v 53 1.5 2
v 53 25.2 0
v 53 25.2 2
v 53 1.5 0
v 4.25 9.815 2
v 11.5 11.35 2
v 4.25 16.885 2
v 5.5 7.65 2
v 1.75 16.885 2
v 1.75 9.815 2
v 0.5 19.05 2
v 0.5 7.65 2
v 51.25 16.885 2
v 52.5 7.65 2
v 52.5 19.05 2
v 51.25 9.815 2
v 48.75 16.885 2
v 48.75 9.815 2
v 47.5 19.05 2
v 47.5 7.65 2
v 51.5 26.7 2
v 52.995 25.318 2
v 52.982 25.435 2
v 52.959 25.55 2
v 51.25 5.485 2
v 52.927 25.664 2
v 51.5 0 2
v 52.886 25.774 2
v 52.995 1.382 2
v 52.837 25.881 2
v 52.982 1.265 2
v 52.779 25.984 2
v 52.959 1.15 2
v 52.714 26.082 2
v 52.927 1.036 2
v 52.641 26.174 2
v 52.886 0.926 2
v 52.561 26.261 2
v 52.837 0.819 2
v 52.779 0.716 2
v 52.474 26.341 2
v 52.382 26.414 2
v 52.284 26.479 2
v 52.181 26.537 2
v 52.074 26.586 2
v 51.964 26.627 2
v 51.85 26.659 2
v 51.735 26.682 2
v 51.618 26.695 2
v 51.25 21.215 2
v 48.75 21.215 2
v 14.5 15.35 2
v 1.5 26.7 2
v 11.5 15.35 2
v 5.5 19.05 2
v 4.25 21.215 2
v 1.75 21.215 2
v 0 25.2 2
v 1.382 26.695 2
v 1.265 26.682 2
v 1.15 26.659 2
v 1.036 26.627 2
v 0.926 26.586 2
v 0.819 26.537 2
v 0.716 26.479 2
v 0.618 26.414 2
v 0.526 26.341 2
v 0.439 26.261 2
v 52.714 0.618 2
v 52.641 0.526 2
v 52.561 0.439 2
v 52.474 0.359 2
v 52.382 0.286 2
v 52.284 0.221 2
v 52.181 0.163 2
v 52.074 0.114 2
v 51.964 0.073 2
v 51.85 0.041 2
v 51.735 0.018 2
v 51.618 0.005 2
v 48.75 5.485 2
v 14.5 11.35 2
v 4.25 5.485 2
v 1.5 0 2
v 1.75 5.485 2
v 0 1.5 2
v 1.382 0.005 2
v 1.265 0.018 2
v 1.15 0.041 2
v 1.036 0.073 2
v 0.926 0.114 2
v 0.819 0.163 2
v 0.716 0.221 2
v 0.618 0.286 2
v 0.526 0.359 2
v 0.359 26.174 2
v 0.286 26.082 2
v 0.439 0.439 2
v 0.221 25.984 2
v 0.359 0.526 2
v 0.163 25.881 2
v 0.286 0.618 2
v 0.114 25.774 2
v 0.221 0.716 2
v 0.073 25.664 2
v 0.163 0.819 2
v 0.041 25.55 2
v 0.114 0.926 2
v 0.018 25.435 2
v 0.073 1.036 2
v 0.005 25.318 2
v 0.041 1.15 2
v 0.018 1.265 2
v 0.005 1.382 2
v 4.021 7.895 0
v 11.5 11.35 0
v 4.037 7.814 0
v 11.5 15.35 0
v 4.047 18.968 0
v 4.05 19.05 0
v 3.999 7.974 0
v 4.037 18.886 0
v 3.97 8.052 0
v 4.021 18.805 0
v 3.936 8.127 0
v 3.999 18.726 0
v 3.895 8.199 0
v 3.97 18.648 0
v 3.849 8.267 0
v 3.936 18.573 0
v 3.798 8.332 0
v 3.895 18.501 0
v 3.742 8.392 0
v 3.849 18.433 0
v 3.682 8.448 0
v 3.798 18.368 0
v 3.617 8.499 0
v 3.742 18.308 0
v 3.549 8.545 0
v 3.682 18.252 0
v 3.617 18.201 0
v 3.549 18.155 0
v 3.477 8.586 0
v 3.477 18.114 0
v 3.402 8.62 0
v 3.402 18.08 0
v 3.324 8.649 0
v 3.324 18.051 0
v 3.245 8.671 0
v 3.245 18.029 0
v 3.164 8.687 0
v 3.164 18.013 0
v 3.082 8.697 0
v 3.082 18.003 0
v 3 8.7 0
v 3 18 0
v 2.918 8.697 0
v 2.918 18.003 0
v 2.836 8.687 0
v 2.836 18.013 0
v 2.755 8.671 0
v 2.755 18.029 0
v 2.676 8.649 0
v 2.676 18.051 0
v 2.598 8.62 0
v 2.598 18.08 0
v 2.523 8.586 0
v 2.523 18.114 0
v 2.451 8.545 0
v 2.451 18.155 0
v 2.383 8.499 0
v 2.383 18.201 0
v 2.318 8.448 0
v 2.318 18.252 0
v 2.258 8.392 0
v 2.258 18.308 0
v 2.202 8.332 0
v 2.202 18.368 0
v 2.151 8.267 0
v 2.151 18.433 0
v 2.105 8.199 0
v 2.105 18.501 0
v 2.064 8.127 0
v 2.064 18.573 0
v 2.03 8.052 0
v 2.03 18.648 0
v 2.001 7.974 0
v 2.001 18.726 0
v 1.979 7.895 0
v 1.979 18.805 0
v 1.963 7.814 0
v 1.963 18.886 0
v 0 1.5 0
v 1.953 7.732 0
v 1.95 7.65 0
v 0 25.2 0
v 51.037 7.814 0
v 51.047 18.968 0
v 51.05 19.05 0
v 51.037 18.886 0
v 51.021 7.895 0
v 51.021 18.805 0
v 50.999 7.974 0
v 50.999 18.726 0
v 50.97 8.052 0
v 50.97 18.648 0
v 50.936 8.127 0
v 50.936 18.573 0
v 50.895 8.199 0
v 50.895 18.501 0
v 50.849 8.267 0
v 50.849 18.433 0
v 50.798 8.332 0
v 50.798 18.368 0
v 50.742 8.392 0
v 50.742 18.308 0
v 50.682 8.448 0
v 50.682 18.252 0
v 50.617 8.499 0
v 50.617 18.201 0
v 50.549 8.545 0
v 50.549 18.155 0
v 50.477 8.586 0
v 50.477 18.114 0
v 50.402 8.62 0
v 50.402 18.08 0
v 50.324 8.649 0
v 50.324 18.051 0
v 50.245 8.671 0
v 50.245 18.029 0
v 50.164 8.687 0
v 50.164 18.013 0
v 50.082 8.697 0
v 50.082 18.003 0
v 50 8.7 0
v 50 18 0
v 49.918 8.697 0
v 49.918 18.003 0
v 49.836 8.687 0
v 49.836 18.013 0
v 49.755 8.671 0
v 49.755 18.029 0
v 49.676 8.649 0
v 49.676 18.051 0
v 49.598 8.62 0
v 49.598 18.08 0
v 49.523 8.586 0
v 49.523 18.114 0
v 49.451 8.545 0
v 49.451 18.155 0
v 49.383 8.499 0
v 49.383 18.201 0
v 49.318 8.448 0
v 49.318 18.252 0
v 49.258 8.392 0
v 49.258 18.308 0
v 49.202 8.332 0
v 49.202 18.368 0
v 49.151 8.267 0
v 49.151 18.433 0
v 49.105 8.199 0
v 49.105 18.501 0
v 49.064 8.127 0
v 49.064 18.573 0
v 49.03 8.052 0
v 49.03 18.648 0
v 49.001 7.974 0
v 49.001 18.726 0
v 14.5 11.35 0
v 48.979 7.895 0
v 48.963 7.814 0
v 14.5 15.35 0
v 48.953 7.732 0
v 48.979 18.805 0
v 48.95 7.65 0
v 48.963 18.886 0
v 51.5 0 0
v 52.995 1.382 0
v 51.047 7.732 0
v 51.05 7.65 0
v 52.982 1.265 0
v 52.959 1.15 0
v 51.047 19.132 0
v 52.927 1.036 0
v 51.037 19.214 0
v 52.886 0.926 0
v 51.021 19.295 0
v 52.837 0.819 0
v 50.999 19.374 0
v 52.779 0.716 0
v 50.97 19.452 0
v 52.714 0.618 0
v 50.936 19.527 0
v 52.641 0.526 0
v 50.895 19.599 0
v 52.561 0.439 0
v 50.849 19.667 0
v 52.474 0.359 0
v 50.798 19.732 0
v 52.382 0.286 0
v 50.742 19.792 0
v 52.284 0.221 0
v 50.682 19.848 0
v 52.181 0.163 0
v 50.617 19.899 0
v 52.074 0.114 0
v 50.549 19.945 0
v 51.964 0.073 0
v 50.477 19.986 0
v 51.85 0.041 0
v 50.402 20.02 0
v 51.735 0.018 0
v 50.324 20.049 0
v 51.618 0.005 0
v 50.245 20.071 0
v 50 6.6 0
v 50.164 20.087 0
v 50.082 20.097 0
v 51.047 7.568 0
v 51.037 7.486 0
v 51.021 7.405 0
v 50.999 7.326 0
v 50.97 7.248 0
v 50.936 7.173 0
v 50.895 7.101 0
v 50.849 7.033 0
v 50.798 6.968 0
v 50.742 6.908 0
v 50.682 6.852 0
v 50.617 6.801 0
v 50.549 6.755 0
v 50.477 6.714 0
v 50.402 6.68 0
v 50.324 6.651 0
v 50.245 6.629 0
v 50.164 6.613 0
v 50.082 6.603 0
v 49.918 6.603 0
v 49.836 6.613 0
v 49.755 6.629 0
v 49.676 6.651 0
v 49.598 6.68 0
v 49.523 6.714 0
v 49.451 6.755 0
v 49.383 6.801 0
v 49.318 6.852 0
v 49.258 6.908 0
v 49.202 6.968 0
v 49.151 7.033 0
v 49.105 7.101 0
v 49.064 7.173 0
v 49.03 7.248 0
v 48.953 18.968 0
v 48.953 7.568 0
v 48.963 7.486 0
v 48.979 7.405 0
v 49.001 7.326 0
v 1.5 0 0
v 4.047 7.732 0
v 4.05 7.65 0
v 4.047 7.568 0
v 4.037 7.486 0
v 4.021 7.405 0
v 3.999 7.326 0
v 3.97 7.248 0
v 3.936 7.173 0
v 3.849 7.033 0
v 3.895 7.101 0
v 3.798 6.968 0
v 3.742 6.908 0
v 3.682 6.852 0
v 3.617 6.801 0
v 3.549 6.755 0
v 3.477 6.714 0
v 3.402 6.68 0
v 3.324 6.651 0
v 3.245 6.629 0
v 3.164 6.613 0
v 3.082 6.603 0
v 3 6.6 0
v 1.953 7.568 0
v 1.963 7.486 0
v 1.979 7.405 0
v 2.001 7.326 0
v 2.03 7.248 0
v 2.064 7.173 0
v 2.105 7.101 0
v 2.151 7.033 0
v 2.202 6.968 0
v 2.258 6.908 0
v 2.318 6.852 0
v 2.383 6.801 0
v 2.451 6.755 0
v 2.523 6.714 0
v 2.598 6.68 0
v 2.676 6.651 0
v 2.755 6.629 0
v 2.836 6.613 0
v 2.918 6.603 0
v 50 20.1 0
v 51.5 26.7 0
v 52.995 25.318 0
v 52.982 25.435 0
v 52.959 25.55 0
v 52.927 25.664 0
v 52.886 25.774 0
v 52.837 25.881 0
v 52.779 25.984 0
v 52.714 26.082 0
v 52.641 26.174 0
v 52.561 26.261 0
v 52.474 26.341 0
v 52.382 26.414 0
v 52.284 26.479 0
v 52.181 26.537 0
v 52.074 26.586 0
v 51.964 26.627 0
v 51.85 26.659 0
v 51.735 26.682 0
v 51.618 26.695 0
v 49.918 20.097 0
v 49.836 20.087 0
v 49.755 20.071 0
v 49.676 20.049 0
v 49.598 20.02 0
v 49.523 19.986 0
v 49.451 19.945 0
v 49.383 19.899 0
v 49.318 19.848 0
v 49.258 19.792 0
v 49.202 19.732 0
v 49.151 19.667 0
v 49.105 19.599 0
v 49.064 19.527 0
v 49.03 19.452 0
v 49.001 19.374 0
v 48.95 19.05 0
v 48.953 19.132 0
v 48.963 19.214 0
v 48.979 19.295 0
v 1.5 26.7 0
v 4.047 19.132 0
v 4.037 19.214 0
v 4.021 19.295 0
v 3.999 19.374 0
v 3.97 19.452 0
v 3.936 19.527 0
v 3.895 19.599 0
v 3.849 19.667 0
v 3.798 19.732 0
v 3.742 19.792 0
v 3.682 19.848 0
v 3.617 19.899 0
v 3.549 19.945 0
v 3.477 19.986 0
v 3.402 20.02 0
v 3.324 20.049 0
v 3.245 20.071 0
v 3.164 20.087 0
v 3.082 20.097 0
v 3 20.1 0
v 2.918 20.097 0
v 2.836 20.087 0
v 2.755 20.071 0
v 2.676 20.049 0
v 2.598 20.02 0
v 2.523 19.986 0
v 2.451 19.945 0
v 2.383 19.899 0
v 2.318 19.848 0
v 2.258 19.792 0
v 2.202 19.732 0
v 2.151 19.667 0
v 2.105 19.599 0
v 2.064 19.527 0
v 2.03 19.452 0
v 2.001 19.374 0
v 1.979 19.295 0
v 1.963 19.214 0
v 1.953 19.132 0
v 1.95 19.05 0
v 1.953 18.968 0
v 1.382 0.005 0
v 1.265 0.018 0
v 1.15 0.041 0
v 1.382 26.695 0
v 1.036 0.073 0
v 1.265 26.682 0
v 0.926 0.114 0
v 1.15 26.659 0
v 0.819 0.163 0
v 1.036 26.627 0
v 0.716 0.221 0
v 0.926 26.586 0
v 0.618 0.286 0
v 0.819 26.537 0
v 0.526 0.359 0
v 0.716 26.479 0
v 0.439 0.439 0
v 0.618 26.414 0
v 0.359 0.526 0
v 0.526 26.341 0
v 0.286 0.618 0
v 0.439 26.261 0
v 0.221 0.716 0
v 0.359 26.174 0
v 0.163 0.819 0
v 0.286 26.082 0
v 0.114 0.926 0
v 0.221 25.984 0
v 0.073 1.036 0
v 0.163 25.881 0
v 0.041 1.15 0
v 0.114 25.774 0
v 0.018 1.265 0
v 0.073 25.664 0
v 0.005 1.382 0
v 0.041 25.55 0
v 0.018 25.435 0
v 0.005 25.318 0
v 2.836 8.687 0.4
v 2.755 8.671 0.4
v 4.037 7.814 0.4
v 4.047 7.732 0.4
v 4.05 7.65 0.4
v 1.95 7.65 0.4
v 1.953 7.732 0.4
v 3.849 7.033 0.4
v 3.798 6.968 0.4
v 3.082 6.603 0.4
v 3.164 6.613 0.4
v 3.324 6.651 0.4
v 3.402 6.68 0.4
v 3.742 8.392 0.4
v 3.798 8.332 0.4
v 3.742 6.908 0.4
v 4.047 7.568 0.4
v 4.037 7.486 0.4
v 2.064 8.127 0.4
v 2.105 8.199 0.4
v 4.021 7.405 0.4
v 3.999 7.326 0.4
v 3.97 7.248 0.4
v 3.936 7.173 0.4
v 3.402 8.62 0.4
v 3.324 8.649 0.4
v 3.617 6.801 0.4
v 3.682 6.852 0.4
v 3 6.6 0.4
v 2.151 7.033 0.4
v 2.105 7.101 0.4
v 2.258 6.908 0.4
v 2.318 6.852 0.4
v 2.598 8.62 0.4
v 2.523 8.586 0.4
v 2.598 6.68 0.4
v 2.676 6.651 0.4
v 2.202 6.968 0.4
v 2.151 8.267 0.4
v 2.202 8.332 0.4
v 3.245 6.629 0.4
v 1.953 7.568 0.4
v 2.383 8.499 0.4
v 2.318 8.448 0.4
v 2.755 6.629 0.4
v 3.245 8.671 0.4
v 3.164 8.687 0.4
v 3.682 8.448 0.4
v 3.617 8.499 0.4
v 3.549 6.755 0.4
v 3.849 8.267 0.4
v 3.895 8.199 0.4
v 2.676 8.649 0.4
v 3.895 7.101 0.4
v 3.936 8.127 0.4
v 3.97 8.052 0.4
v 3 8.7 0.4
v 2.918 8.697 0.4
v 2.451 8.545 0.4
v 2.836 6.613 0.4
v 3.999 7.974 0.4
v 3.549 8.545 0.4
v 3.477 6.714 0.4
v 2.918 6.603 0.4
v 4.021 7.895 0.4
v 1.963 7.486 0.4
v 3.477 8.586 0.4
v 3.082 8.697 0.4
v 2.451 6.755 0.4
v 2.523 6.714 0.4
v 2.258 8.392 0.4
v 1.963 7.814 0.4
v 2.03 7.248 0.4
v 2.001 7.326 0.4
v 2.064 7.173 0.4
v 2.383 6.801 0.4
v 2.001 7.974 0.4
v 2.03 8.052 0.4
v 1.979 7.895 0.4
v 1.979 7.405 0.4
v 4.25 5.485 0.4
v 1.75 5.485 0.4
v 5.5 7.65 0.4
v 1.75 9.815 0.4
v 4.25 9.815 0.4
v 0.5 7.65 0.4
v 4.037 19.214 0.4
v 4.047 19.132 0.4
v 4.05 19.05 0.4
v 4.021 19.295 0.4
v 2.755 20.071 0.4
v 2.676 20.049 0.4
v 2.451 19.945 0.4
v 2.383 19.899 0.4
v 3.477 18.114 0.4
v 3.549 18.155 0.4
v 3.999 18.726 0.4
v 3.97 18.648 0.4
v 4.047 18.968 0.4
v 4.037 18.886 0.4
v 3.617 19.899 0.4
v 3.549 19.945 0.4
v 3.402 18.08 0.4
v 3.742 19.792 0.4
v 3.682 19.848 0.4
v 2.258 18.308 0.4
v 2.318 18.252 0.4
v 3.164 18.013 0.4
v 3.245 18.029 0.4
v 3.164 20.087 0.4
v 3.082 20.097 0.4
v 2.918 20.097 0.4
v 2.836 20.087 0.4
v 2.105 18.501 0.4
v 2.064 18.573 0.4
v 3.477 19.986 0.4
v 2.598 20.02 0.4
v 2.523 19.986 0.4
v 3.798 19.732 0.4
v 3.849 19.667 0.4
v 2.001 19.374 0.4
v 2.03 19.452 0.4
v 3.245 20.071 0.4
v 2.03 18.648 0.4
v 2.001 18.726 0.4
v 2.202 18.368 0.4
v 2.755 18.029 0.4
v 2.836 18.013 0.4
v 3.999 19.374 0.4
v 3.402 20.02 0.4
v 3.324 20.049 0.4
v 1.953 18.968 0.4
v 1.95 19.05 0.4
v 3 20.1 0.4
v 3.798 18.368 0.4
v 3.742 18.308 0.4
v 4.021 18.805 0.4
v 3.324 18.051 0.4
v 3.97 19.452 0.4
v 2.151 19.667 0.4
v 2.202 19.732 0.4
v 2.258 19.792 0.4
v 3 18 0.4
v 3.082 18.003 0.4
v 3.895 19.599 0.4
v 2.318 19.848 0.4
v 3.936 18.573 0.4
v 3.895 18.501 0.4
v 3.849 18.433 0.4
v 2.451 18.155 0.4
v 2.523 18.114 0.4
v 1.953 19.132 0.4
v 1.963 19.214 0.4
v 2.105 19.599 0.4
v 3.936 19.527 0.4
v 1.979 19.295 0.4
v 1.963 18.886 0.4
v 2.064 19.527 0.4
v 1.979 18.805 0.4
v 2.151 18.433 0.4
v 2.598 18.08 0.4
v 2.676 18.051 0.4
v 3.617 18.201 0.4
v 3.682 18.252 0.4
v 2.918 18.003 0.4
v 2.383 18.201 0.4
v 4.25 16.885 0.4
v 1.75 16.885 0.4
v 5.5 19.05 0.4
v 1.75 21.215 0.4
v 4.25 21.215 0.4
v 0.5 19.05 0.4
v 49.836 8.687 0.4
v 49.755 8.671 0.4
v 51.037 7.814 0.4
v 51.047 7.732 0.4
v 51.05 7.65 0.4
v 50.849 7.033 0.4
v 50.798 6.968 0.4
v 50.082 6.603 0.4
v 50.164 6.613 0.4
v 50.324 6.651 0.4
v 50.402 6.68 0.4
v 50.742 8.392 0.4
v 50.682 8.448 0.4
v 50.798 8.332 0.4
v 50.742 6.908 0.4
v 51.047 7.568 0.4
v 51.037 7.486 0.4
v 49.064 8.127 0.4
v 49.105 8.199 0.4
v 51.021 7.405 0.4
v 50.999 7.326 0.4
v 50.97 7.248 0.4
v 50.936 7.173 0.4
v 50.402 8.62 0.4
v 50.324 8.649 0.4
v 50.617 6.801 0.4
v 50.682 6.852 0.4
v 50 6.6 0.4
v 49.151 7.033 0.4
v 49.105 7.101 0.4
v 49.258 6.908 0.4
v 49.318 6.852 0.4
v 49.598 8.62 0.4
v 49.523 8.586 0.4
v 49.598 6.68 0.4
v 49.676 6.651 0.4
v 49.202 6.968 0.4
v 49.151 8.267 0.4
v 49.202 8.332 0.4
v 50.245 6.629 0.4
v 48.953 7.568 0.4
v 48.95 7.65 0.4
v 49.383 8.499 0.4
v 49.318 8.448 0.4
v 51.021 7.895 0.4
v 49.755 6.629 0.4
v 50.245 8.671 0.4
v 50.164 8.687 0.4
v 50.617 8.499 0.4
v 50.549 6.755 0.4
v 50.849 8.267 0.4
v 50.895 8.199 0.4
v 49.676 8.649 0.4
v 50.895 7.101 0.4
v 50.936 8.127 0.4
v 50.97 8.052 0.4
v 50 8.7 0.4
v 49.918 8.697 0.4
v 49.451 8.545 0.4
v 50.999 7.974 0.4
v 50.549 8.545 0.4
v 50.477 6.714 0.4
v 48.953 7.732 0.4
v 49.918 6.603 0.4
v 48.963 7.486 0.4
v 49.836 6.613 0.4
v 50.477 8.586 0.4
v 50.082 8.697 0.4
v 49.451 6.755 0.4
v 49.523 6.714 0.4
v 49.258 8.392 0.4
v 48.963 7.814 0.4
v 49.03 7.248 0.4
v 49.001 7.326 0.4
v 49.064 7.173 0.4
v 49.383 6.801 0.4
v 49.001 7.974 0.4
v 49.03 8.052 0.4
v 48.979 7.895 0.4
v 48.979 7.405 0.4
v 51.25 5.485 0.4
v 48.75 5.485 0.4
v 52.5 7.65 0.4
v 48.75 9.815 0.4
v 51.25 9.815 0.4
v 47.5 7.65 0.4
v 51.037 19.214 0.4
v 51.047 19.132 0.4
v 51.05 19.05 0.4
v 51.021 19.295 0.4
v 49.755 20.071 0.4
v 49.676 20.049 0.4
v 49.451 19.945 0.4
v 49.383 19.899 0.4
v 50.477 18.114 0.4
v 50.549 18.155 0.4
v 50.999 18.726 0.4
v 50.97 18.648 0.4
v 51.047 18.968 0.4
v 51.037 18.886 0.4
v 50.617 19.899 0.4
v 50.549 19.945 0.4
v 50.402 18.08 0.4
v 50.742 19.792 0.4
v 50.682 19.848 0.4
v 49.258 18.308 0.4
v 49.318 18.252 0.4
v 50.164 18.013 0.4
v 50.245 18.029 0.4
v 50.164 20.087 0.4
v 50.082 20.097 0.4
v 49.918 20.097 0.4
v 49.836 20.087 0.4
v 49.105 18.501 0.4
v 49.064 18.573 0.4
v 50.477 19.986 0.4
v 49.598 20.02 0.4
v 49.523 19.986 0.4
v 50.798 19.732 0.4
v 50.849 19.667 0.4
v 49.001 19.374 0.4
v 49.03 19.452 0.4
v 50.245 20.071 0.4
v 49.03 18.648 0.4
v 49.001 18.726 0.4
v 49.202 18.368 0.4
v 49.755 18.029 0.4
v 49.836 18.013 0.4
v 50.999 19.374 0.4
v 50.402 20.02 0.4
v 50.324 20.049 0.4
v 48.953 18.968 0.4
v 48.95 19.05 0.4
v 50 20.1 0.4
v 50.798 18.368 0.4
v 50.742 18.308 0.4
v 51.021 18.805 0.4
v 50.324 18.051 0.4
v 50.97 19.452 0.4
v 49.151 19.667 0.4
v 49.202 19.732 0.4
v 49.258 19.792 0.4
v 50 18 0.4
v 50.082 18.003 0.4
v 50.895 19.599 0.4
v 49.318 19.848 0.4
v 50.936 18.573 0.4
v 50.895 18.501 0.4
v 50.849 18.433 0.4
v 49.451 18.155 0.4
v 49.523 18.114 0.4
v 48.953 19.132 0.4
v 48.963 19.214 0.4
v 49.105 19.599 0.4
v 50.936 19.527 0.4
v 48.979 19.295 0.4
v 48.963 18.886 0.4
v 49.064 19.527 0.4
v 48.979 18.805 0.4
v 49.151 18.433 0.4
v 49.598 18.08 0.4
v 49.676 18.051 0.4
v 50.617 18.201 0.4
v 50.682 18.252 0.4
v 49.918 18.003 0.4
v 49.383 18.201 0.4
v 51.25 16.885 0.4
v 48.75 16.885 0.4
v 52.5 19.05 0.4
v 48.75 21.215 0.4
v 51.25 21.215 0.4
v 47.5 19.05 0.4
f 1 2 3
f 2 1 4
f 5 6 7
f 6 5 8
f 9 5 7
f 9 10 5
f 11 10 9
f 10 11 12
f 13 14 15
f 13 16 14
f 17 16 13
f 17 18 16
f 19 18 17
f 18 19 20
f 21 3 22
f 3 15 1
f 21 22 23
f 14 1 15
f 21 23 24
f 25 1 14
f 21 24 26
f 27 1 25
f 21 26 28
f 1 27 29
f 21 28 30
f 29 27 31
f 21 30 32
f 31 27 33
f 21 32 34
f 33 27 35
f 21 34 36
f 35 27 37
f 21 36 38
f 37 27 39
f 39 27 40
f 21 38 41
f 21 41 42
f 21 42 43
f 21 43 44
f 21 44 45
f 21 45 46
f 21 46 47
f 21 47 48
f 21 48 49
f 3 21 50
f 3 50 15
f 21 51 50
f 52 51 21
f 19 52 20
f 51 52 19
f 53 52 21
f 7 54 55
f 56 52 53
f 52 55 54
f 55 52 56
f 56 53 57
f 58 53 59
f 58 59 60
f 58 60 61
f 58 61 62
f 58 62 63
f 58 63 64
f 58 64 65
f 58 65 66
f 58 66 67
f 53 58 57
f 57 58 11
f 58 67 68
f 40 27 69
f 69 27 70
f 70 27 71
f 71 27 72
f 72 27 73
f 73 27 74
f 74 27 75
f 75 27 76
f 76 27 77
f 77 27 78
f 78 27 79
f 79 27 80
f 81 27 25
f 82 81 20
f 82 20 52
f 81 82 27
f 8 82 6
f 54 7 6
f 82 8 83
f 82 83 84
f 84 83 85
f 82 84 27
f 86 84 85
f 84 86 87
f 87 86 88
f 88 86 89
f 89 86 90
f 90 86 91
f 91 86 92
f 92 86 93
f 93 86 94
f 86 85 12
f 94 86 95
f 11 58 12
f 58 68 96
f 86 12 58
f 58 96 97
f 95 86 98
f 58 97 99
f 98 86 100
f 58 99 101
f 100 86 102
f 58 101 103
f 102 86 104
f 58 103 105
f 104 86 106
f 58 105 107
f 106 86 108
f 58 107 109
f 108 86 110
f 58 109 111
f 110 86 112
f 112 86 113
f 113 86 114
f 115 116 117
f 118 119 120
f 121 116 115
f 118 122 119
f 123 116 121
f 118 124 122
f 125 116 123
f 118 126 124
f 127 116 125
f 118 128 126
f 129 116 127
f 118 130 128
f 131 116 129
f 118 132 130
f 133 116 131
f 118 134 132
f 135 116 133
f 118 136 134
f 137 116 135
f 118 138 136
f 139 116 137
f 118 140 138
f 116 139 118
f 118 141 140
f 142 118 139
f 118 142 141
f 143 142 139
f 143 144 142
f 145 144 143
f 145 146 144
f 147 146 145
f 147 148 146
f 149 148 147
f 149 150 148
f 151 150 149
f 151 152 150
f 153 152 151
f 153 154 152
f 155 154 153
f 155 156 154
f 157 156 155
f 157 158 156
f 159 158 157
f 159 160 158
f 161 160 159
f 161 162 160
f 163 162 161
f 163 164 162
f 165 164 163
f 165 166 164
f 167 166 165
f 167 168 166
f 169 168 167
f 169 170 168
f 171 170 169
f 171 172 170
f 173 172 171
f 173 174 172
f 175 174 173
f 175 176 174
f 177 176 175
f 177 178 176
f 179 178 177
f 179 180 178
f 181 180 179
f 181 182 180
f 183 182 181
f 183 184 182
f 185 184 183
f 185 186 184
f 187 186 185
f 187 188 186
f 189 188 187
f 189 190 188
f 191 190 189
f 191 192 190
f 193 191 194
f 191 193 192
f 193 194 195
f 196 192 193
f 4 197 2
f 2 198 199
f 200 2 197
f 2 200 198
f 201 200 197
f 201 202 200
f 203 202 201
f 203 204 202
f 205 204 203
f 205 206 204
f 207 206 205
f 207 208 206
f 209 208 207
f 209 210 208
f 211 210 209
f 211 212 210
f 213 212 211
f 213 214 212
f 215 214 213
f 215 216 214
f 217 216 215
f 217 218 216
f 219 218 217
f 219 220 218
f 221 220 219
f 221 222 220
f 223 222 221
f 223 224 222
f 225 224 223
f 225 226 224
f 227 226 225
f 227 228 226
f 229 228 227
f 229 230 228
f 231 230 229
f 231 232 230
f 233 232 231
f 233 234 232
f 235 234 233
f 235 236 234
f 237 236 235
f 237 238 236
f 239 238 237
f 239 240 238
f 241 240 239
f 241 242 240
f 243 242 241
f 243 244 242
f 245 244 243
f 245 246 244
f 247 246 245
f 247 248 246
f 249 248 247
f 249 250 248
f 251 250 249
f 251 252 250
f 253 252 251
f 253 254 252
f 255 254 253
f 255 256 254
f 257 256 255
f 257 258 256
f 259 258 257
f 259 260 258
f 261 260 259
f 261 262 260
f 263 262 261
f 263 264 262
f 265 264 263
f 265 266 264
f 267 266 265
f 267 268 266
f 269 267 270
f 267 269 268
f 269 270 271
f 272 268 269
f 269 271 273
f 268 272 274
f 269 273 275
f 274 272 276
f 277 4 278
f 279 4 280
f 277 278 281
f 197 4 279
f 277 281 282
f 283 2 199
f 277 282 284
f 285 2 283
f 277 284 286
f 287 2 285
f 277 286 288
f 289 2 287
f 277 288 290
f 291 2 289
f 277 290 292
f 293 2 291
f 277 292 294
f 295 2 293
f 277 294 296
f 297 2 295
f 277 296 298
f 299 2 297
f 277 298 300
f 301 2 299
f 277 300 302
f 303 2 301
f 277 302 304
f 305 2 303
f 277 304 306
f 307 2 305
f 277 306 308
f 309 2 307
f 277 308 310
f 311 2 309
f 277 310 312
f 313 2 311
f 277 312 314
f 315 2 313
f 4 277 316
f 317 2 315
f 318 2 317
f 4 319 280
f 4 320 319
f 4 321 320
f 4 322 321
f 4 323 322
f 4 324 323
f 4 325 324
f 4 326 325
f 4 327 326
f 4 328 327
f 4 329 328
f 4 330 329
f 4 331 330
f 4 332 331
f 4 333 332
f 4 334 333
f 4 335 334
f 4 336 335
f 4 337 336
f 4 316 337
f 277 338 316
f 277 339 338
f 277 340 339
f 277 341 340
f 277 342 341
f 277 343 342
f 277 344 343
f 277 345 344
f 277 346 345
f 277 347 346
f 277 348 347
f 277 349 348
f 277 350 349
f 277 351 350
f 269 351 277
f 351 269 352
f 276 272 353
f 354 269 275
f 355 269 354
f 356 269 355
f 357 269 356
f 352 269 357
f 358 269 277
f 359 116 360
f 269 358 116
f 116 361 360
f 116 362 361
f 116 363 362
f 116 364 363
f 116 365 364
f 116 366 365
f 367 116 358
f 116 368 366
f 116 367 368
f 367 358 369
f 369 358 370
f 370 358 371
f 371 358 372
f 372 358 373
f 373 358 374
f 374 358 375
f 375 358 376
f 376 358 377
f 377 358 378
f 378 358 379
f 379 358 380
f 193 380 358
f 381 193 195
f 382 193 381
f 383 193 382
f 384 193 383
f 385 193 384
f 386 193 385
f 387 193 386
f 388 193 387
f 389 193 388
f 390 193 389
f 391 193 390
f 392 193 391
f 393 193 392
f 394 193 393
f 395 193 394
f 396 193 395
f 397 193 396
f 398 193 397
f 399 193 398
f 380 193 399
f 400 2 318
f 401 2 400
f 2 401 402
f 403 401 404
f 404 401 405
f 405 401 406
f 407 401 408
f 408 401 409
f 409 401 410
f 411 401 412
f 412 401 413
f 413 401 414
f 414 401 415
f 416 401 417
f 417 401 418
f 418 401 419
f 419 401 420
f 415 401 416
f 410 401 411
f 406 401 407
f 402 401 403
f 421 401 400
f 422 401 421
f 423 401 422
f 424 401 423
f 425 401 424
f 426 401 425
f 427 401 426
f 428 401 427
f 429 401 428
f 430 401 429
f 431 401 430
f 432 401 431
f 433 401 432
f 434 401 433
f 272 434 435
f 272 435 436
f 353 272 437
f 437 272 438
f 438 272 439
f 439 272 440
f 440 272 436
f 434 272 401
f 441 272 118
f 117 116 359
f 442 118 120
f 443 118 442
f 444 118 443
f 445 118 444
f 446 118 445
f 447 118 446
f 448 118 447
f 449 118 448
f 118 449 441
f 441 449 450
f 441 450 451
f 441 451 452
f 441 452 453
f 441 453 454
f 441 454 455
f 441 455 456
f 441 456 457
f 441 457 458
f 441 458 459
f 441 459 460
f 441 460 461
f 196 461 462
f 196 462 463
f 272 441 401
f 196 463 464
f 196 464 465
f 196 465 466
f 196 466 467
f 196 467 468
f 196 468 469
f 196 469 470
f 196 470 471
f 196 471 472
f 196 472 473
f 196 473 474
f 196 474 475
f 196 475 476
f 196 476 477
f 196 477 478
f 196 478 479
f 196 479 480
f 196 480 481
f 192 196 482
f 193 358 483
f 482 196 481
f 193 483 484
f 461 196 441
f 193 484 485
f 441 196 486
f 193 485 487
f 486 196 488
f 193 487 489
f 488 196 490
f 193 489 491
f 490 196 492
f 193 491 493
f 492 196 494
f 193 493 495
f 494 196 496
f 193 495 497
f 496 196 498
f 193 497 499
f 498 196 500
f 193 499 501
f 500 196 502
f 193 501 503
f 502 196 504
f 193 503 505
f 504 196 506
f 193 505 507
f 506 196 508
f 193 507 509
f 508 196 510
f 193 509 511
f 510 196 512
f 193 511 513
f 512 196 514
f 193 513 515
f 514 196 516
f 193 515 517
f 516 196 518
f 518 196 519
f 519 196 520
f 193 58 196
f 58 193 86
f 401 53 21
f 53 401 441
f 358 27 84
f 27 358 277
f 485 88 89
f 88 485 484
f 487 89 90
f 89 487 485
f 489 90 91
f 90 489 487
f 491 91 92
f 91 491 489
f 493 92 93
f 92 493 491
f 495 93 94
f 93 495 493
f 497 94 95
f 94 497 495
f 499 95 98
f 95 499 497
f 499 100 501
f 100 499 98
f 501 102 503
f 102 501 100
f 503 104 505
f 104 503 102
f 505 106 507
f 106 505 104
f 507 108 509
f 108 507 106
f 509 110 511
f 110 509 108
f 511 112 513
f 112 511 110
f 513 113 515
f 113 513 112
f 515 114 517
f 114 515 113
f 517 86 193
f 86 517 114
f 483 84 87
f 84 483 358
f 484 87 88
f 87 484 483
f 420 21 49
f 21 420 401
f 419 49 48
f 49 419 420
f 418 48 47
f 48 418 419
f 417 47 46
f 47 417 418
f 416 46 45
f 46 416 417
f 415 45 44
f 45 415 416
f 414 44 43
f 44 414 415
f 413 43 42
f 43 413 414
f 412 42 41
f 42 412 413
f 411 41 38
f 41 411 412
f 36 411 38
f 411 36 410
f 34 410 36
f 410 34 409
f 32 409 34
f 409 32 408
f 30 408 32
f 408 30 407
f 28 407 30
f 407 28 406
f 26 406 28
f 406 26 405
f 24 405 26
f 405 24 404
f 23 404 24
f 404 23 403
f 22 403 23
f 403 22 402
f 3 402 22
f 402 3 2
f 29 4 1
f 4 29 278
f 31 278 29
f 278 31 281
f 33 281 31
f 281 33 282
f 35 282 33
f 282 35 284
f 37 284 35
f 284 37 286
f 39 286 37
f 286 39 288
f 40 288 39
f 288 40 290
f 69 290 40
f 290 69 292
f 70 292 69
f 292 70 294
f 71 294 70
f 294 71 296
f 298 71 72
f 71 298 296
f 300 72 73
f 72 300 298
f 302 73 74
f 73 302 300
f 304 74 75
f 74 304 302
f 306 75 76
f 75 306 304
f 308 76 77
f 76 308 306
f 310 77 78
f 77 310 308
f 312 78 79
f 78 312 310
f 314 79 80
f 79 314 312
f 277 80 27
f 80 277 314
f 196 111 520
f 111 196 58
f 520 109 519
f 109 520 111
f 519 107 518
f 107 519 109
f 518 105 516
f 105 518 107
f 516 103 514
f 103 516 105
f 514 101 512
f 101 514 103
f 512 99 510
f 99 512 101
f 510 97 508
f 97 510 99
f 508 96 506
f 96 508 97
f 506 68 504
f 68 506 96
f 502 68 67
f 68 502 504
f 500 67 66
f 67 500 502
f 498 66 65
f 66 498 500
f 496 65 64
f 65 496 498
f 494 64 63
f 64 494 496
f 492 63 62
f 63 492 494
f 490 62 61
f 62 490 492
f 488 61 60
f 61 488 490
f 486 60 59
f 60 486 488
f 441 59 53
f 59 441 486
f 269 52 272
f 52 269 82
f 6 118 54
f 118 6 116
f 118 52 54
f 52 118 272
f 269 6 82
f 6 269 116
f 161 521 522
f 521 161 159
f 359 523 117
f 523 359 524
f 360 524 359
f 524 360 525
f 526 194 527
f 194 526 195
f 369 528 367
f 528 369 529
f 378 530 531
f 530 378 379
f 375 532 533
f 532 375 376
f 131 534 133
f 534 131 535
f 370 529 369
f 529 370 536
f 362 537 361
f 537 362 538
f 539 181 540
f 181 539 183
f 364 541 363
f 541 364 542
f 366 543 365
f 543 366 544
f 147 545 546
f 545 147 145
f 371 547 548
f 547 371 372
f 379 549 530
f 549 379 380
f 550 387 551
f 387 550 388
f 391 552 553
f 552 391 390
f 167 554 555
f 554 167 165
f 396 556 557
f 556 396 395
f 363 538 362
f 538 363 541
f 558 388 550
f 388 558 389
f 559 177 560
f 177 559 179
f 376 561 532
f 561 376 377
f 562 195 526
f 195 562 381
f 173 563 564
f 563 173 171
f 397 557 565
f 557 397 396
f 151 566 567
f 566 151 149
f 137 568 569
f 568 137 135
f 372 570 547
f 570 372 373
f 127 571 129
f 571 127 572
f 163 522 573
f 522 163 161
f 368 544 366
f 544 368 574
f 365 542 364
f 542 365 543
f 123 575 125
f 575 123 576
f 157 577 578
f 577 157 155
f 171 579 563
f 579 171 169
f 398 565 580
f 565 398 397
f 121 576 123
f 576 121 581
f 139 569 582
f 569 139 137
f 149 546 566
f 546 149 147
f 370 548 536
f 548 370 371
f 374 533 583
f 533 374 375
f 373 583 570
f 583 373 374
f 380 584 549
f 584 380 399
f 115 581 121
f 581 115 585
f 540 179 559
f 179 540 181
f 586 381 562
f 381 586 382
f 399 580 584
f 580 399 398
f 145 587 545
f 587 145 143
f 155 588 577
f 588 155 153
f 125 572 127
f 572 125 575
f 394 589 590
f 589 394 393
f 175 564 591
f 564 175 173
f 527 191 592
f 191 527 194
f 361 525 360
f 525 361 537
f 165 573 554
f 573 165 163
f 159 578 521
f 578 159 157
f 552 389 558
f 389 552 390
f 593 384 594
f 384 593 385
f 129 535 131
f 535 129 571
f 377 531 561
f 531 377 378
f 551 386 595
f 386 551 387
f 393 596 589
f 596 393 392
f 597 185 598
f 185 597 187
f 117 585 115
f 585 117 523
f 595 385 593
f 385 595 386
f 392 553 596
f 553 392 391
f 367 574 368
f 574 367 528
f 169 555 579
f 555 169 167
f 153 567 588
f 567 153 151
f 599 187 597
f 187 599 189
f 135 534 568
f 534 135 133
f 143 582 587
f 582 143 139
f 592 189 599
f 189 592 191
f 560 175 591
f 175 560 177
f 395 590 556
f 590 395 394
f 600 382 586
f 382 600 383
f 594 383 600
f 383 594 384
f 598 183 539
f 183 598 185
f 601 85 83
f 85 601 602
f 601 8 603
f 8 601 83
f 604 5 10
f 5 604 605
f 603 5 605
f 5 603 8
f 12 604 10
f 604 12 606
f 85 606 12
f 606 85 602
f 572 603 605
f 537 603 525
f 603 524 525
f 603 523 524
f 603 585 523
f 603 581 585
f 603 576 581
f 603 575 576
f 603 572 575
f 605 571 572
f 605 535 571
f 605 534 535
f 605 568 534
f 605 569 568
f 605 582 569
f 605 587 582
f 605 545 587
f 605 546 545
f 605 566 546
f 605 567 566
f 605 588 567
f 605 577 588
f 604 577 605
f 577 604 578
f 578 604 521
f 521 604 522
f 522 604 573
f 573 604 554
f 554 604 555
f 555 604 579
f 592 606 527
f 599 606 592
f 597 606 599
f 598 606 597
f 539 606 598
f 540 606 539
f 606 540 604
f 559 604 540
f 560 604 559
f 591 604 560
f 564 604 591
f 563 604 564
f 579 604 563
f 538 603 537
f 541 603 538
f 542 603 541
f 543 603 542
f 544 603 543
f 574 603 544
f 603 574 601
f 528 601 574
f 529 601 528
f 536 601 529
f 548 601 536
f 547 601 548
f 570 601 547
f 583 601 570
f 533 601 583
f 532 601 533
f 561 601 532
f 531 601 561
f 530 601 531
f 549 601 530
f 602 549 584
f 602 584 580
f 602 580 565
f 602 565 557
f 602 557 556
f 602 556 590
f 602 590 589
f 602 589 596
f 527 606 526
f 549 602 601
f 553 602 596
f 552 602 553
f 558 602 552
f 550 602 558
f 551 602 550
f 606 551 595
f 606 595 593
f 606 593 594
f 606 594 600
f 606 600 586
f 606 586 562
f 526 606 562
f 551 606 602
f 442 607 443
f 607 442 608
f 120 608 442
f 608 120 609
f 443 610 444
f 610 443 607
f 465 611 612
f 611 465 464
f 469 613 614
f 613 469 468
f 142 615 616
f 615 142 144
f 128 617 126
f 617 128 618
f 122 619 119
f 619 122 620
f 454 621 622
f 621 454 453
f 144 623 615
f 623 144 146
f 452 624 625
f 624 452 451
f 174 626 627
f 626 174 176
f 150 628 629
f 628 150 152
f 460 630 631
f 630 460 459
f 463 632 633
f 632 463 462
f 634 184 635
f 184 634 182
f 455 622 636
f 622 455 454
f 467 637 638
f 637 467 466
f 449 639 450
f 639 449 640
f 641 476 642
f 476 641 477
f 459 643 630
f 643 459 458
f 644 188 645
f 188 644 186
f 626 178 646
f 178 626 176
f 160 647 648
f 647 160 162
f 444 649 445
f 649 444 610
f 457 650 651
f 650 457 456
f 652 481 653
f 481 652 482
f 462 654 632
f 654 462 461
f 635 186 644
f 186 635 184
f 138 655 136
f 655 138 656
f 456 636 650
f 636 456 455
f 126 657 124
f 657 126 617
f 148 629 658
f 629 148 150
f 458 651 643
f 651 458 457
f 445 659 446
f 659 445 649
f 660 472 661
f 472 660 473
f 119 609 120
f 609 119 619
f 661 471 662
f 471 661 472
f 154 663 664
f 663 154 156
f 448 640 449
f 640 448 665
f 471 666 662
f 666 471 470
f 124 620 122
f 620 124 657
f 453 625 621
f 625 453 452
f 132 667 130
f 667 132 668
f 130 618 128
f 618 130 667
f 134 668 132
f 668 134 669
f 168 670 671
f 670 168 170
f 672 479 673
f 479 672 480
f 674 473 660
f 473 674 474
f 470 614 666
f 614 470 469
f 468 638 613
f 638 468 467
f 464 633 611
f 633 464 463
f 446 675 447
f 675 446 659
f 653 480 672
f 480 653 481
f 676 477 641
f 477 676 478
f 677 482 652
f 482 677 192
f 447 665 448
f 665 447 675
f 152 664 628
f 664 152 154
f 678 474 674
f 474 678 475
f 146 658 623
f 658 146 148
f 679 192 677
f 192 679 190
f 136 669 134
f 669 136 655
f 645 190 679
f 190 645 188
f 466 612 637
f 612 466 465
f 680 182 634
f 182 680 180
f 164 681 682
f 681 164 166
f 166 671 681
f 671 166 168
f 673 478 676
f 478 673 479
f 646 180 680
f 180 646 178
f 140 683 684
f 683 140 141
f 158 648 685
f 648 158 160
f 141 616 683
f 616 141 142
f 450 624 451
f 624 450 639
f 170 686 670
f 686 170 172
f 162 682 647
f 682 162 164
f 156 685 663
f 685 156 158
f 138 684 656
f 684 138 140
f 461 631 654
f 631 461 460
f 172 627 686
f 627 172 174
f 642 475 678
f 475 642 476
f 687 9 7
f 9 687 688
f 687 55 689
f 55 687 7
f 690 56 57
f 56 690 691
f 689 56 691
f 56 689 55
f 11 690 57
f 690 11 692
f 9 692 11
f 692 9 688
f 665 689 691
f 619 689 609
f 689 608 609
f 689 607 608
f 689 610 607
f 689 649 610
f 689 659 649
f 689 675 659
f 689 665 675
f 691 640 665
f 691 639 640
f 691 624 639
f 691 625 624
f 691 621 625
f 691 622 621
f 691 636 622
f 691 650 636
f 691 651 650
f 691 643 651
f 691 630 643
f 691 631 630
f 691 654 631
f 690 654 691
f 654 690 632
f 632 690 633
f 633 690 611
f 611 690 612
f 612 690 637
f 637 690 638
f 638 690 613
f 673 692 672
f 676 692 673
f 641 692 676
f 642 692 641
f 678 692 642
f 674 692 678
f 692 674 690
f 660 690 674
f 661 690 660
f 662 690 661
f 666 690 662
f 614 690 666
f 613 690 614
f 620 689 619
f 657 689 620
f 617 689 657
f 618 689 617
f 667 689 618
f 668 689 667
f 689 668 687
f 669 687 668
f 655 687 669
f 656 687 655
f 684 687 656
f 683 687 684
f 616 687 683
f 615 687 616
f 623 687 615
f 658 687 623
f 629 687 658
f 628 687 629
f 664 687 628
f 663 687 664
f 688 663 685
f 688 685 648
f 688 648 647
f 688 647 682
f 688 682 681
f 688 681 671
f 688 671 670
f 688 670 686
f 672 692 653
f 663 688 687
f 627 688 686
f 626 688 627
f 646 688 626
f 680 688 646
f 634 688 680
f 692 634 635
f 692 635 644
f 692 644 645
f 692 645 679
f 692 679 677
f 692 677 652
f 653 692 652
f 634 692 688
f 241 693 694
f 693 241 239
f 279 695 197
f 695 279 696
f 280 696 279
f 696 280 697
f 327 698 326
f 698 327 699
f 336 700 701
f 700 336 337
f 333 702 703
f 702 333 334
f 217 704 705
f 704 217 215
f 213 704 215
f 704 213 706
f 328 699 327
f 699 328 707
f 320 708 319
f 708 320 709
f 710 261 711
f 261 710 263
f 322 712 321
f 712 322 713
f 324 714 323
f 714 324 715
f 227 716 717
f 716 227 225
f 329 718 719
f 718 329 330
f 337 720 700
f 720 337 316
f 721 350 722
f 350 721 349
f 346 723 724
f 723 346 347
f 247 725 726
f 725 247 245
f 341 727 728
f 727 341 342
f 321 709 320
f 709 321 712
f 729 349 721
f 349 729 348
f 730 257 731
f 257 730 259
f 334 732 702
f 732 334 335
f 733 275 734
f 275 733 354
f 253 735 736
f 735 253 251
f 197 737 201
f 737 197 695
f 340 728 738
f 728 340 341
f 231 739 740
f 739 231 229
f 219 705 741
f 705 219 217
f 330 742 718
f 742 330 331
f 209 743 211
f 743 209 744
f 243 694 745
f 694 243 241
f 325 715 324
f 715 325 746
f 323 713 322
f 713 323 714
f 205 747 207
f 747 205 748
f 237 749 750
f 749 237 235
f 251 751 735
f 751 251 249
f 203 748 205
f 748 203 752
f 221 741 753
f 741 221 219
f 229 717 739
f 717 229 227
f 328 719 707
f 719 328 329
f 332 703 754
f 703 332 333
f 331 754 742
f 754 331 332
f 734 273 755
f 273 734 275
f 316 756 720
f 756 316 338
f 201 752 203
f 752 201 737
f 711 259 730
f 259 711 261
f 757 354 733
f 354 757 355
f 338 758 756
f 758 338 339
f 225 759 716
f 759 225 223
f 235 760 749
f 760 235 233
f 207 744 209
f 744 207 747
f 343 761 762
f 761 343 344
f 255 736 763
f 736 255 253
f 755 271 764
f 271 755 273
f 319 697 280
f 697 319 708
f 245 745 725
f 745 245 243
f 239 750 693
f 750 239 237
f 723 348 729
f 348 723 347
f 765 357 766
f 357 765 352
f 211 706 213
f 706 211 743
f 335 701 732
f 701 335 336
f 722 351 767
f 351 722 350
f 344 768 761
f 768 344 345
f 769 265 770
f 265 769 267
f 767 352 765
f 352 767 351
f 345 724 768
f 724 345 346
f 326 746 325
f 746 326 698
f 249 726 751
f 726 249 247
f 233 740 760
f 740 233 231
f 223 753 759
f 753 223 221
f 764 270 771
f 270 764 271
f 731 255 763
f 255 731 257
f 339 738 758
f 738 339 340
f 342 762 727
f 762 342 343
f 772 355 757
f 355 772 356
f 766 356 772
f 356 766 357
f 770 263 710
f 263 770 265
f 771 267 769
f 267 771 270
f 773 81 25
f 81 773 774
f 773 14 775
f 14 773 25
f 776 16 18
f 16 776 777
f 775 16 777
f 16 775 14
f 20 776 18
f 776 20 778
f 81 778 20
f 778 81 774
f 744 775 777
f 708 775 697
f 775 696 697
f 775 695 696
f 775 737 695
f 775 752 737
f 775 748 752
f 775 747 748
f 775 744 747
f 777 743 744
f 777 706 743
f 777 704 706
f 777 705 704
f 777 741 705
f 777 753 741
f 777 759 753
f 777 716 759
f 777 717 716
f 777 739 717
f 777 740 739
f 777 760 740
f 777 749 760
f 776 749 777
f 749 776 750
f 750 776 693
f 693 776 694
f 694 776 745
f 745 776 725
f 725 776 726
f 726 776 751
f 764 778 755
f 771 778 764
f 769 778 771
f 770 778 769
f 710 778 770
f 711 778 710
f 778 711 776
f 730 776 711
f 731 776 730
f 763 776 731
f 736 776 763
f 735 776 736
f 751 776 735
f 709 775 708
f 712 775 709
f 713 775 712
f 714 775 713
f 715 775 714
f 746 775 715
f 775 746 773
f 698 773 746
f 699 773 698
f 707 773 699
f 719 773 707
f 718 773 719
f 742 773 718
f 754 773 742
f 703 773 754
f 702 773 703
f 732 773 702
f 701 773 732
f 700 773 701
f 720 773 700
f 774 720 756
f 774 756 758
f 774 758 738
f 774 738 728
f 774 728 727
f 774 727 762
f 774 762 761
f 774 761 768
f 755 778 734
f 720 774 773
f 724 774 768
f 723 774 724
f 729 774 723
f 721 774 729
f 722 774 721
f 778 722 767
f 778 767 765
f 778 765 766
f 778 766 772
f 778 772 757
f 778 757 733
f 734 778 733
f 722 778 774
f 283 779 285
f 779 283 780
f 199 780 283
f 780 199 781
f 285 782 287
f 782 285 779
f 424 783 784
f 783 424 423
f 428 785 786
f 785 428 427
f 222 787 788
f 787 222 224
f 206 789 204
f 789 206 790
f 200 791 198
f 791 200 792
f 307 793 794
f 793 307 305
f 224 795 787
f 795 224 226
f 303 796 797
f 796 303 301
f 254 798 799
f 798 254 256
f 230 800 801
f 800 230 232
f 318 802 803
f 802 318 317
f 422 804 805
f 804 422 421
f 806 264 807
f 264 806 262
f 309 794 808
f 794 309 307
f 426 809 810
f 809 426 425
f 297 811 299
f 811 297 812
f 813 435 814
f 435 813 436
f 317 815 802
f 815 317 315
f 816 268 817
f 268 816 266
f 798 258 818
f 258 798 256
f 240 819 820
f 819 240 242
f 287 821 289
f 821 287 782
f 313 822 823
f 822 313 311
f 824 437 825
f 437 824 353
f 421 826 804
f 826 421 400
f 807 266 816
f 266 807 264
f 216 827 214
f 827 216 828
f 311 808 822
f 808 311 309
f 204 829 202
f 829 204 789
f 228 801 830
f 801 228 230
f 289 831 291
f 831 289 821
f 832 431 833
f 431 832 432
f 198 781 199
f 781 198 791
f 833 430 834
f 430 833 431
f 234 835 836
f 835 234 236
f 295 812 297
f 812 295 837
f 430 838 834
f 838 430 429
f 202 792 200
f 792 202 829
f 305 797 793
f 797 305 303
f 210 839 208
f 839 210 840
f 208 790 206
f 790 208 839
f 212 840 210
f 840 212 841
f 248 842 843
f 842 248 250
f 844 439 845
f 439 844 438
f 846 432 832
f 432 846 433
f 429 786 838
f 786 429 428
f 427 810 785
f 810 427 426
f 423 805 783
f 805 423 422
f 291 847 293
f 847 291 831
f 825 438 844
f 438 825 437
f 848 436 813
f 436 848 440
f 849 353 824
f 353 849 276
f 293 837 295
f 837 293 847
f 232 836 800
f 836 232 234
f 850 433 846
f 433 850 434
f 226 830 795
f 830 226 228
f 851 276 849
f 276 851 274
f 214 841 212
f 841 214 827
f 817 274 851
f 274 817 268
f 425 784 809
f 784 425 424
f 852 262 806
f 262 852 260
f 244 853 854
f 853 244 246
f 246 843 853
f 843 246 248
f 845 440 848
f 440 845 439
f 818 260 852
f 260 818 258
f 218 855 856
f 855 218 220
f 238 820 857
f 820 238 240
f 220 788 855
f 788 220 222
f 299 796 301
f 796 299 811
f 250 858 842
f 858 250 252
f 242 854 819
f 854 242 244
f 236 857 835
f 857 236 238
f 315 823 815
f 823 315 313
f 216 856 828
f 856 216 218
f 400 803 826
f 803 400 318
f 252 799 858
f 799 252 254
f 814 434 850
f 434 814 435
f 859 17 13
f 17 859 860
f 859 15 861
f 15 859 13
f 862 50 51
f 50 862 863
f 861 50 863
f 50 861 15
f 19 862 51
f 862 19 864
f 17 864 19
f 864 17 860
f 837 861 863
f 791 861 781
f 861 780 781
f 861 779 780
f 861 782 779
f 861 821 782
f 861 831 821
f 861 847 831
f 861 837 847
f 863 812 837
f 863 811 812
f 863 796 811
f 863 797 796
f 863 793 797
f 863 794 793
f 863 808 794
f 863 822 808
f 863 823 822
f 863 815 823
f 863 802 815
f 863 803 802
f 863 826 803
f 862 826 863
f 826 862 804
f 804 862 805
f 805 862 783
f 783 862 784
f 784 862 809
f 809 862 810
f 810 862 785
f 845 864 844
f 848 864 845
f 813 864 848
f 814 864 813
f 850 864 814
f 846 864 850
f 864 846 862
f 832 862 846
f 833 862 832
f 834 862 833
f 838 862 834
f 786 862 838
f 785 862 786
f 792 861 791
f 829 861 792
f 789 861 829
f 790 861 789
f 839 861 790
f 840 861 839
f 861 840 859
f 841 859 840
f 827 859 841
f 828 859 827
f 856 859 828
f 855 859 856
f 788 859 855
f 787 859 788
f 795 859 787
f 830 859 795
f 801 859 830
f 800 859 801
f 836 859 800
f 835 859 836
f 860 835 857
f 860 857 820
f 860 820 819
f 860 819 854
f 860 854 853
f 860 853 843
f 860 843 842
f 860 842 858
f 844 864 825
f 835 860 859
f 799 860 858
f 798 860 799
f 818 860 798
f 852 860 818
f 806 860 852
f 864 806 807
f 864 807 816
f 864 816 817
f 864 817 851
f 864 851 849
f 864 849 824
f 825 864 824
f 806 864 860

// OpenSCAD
include <BOSL/constants.scad>
use <BOSL/masks.scad>

// Start config
// Pi Board
pi_board_size = [51,21]; //mm
pi_board_screw_holes_center_from_board_edge_distance = [3.7/2/*3.7 is the difference between screen and pi pcb height 21-24.7 */+4.8,2]; //mm
pi_board_screw_holes_diameter = 2.1; //mm
pi_board_padding = 1; //mm

// Screen
screen_pcb_size = [24.7,27,13.3]; //mm (+- 0.2) 13.3mm are pin headers.
screen_pcb_screw_holes_center_from_board_edge_distance = 2.1; //mm
screen_pcb_screw_holes_diameter=2.8; //mm
screen_pcb_screw_holes_spacing=[20.5,23]; //mm
active_screen_area = [24.7,16.9,3.5]; //mm (old: 13.86)
active_screen_area_offset_from_corner = [0,5.08]; //mm

// MEMS Package (HCLGA)
mems_microphone_package_size = [3,4,1.06]; //mm https://cdn-learn.adafruit.com/assets/assets/000/049/977/original/MP34DT01-M.pdf
mems_microphone_position_offset_from_corner = [11.5,pi_board_padding+screen_pcb_size.x/2-mems_microphone_package_size.y/2,0]; //mm



// Screws
m2_screw_nut_size = [5,5,1.6];

// Misc
walls_thickness = 2; //mm
rounding_radius=1.5; //mm

resolution = 80;
// End config

// Modules
module sector(radius, angles, fn = resolution) {
    r = radius / cos(180 / fn);
    step = -360 / fn;

    points = concat([[0, 0]],
        [for(a = [angles[0] : step : angles[1] - 360]) 
            [r * cos(a), r * sin(a)]
        ],
        [[r * cos(angles[1]), r * sin(angles[1])]]
    );

    difference() {
        circle(radius, $fn = fn);
        polygon(points);
    }
}

module arc(radius, angles, width = 1, fn = resolution) {
    difference() {
        sector(radius + width, angles, fn);
        sector(radius, angles, fn);
    }
}

// Modeling
difference(){
// Body
cube(size=[pi_board_size.x+2*pi_board_padding,screen_pcb_size.x+2*pi_board_padding,walls_thickness]);
   // Fillet Edge
    fillet_mask_z(l=walls_thickness, r=rounding_radius, align=V_UP, $fn=resolution);
    
   translate([pi_board_size.x+2*pi_board_padding,screen_pcb_size.x+2*pi_board_padding,0])
    fillet_mask_z(l=walls_thickness, r=rounding_radius, align=V_UP, $fn=resolution);
    
   translate([pi_board_size.x+2*pi_board_padding,0,0]) fillet_mask_z(l=walls_thickness, r=rounding_radius, align=V_UP, $fn=resolution);
    
   translate([0,screen_pcb_size.x+2*pi_board_padding,0]) fillet_mask_z(l=walls_thickness, r=rounding_radius, align=V_UP, $fn=resolution);
    // MEMS Package (HCLGA)
    translate(mems_microphone_position_offset_from_corner) cube(size=[mems_microphone_package_size.x,mems_microphone_package_size.y,walls_thickness]);
    // Screws + Nuts
    translate([pi_board_screw_holes_center_from_board_edge_distance.y+pi_board_padding,pi_board_screw_holes_center_from_board_edge_distance.x+pi_board_padding,0]) cylinder(walls_thickness,pi_board_screw_holes_diameter/2,pi_board_screw_holes_diameter/2,$fn=resolution);
    
    translate([pi_board_screw_holes_center_from_board_edge_distance.y+pi_board_padding,pi_board_screw_holes_center_from_board_edge_distance.x+pi_board_padding,walls_thickness-m2_screw_nut_size.z]) cylinder(m2_screw_nut_size.z,m2_screw_nut_size.x/2,m2_screw_nut_size.x/2,$fn=6);
    
    translate([pi_board_screw_holes_center_from_board_edge_distance.y+pi_board_padding,screen_pcb_size.x-pi_board_screw_holes_center_from_board_edge_distance.x+pi_board_padding,0]) cylinder(walls_thickness,pi_board_screw_holes_diameter/2,pi_board_screw_holes_diameter/2,$fn=resolution);
    
    translate([pi_board_screw_holes_center_from_board_edge_distance.y+pi_board_padding,screen_pcb_size.x-pi_board_screw_holes_center_from_board_edge_distance.x+pi_board_padding,walls_thickness-m2_screw_nut_size.z]) cylinder(m2_screw_nut_size.z,m2_screw_nut_size.x/2,m2_screw_nut_size.x/2,$fn=6);
    
    translate([pi_board_size.x-pi_board_screw_holes_center_from_board_edge_distance.y+pi_board_padding,pi_board_screw_holes_center_from_board_edge_distance.x+pi_board_padding,0]) cylinder(walls_thickness,pi_board_screw_holes_diameter/2,pi_board_screw_holes_diameter/2,$fn=resolution);
    
    translate([pi_board_size.x-pi_board_screw_holes_center_from_board_edge_distance.y+pi_board_padding,pi_board_screw_holes_center_from_board_edge_distance.x+pi_board_padding,walls_thickness-m2_screw_nut_size.z]) cylinder(m2_screw_nut_size.z,m2_screw_nut_size.x/2,m2_screw_nut_size.x/2,$fn=6);
    
    translate([pi_board_size.x-pi_board_screw_holes_center_from_board_edge_distance.y+pi_board_padding,screen_pcb_size.x-pi_board_screw_holes_center_from_board_edge_distance.x+pi_board_padding,0]) cylinder(walls_thickness,pi_board_screw_holes_diameter/2,pi_board_screw_holes_diameter/2,$fn=resolution);
    
    translate([pi_board_size.x-pi_board_screw_holes_center_from_board_edge_distance.y+pi_board_padding,screen_pcb_size.x-pi_board_screw_holes_center_from_board_edge_distance.x+pi_board_padding,walls_thickness-m2_screw_nut_size.z]) cylinder(m2_screw_nut_size.z,m2_screw_nut_size.x/2,m2_screw_nut_size.x/2,$fn=6);
   }
